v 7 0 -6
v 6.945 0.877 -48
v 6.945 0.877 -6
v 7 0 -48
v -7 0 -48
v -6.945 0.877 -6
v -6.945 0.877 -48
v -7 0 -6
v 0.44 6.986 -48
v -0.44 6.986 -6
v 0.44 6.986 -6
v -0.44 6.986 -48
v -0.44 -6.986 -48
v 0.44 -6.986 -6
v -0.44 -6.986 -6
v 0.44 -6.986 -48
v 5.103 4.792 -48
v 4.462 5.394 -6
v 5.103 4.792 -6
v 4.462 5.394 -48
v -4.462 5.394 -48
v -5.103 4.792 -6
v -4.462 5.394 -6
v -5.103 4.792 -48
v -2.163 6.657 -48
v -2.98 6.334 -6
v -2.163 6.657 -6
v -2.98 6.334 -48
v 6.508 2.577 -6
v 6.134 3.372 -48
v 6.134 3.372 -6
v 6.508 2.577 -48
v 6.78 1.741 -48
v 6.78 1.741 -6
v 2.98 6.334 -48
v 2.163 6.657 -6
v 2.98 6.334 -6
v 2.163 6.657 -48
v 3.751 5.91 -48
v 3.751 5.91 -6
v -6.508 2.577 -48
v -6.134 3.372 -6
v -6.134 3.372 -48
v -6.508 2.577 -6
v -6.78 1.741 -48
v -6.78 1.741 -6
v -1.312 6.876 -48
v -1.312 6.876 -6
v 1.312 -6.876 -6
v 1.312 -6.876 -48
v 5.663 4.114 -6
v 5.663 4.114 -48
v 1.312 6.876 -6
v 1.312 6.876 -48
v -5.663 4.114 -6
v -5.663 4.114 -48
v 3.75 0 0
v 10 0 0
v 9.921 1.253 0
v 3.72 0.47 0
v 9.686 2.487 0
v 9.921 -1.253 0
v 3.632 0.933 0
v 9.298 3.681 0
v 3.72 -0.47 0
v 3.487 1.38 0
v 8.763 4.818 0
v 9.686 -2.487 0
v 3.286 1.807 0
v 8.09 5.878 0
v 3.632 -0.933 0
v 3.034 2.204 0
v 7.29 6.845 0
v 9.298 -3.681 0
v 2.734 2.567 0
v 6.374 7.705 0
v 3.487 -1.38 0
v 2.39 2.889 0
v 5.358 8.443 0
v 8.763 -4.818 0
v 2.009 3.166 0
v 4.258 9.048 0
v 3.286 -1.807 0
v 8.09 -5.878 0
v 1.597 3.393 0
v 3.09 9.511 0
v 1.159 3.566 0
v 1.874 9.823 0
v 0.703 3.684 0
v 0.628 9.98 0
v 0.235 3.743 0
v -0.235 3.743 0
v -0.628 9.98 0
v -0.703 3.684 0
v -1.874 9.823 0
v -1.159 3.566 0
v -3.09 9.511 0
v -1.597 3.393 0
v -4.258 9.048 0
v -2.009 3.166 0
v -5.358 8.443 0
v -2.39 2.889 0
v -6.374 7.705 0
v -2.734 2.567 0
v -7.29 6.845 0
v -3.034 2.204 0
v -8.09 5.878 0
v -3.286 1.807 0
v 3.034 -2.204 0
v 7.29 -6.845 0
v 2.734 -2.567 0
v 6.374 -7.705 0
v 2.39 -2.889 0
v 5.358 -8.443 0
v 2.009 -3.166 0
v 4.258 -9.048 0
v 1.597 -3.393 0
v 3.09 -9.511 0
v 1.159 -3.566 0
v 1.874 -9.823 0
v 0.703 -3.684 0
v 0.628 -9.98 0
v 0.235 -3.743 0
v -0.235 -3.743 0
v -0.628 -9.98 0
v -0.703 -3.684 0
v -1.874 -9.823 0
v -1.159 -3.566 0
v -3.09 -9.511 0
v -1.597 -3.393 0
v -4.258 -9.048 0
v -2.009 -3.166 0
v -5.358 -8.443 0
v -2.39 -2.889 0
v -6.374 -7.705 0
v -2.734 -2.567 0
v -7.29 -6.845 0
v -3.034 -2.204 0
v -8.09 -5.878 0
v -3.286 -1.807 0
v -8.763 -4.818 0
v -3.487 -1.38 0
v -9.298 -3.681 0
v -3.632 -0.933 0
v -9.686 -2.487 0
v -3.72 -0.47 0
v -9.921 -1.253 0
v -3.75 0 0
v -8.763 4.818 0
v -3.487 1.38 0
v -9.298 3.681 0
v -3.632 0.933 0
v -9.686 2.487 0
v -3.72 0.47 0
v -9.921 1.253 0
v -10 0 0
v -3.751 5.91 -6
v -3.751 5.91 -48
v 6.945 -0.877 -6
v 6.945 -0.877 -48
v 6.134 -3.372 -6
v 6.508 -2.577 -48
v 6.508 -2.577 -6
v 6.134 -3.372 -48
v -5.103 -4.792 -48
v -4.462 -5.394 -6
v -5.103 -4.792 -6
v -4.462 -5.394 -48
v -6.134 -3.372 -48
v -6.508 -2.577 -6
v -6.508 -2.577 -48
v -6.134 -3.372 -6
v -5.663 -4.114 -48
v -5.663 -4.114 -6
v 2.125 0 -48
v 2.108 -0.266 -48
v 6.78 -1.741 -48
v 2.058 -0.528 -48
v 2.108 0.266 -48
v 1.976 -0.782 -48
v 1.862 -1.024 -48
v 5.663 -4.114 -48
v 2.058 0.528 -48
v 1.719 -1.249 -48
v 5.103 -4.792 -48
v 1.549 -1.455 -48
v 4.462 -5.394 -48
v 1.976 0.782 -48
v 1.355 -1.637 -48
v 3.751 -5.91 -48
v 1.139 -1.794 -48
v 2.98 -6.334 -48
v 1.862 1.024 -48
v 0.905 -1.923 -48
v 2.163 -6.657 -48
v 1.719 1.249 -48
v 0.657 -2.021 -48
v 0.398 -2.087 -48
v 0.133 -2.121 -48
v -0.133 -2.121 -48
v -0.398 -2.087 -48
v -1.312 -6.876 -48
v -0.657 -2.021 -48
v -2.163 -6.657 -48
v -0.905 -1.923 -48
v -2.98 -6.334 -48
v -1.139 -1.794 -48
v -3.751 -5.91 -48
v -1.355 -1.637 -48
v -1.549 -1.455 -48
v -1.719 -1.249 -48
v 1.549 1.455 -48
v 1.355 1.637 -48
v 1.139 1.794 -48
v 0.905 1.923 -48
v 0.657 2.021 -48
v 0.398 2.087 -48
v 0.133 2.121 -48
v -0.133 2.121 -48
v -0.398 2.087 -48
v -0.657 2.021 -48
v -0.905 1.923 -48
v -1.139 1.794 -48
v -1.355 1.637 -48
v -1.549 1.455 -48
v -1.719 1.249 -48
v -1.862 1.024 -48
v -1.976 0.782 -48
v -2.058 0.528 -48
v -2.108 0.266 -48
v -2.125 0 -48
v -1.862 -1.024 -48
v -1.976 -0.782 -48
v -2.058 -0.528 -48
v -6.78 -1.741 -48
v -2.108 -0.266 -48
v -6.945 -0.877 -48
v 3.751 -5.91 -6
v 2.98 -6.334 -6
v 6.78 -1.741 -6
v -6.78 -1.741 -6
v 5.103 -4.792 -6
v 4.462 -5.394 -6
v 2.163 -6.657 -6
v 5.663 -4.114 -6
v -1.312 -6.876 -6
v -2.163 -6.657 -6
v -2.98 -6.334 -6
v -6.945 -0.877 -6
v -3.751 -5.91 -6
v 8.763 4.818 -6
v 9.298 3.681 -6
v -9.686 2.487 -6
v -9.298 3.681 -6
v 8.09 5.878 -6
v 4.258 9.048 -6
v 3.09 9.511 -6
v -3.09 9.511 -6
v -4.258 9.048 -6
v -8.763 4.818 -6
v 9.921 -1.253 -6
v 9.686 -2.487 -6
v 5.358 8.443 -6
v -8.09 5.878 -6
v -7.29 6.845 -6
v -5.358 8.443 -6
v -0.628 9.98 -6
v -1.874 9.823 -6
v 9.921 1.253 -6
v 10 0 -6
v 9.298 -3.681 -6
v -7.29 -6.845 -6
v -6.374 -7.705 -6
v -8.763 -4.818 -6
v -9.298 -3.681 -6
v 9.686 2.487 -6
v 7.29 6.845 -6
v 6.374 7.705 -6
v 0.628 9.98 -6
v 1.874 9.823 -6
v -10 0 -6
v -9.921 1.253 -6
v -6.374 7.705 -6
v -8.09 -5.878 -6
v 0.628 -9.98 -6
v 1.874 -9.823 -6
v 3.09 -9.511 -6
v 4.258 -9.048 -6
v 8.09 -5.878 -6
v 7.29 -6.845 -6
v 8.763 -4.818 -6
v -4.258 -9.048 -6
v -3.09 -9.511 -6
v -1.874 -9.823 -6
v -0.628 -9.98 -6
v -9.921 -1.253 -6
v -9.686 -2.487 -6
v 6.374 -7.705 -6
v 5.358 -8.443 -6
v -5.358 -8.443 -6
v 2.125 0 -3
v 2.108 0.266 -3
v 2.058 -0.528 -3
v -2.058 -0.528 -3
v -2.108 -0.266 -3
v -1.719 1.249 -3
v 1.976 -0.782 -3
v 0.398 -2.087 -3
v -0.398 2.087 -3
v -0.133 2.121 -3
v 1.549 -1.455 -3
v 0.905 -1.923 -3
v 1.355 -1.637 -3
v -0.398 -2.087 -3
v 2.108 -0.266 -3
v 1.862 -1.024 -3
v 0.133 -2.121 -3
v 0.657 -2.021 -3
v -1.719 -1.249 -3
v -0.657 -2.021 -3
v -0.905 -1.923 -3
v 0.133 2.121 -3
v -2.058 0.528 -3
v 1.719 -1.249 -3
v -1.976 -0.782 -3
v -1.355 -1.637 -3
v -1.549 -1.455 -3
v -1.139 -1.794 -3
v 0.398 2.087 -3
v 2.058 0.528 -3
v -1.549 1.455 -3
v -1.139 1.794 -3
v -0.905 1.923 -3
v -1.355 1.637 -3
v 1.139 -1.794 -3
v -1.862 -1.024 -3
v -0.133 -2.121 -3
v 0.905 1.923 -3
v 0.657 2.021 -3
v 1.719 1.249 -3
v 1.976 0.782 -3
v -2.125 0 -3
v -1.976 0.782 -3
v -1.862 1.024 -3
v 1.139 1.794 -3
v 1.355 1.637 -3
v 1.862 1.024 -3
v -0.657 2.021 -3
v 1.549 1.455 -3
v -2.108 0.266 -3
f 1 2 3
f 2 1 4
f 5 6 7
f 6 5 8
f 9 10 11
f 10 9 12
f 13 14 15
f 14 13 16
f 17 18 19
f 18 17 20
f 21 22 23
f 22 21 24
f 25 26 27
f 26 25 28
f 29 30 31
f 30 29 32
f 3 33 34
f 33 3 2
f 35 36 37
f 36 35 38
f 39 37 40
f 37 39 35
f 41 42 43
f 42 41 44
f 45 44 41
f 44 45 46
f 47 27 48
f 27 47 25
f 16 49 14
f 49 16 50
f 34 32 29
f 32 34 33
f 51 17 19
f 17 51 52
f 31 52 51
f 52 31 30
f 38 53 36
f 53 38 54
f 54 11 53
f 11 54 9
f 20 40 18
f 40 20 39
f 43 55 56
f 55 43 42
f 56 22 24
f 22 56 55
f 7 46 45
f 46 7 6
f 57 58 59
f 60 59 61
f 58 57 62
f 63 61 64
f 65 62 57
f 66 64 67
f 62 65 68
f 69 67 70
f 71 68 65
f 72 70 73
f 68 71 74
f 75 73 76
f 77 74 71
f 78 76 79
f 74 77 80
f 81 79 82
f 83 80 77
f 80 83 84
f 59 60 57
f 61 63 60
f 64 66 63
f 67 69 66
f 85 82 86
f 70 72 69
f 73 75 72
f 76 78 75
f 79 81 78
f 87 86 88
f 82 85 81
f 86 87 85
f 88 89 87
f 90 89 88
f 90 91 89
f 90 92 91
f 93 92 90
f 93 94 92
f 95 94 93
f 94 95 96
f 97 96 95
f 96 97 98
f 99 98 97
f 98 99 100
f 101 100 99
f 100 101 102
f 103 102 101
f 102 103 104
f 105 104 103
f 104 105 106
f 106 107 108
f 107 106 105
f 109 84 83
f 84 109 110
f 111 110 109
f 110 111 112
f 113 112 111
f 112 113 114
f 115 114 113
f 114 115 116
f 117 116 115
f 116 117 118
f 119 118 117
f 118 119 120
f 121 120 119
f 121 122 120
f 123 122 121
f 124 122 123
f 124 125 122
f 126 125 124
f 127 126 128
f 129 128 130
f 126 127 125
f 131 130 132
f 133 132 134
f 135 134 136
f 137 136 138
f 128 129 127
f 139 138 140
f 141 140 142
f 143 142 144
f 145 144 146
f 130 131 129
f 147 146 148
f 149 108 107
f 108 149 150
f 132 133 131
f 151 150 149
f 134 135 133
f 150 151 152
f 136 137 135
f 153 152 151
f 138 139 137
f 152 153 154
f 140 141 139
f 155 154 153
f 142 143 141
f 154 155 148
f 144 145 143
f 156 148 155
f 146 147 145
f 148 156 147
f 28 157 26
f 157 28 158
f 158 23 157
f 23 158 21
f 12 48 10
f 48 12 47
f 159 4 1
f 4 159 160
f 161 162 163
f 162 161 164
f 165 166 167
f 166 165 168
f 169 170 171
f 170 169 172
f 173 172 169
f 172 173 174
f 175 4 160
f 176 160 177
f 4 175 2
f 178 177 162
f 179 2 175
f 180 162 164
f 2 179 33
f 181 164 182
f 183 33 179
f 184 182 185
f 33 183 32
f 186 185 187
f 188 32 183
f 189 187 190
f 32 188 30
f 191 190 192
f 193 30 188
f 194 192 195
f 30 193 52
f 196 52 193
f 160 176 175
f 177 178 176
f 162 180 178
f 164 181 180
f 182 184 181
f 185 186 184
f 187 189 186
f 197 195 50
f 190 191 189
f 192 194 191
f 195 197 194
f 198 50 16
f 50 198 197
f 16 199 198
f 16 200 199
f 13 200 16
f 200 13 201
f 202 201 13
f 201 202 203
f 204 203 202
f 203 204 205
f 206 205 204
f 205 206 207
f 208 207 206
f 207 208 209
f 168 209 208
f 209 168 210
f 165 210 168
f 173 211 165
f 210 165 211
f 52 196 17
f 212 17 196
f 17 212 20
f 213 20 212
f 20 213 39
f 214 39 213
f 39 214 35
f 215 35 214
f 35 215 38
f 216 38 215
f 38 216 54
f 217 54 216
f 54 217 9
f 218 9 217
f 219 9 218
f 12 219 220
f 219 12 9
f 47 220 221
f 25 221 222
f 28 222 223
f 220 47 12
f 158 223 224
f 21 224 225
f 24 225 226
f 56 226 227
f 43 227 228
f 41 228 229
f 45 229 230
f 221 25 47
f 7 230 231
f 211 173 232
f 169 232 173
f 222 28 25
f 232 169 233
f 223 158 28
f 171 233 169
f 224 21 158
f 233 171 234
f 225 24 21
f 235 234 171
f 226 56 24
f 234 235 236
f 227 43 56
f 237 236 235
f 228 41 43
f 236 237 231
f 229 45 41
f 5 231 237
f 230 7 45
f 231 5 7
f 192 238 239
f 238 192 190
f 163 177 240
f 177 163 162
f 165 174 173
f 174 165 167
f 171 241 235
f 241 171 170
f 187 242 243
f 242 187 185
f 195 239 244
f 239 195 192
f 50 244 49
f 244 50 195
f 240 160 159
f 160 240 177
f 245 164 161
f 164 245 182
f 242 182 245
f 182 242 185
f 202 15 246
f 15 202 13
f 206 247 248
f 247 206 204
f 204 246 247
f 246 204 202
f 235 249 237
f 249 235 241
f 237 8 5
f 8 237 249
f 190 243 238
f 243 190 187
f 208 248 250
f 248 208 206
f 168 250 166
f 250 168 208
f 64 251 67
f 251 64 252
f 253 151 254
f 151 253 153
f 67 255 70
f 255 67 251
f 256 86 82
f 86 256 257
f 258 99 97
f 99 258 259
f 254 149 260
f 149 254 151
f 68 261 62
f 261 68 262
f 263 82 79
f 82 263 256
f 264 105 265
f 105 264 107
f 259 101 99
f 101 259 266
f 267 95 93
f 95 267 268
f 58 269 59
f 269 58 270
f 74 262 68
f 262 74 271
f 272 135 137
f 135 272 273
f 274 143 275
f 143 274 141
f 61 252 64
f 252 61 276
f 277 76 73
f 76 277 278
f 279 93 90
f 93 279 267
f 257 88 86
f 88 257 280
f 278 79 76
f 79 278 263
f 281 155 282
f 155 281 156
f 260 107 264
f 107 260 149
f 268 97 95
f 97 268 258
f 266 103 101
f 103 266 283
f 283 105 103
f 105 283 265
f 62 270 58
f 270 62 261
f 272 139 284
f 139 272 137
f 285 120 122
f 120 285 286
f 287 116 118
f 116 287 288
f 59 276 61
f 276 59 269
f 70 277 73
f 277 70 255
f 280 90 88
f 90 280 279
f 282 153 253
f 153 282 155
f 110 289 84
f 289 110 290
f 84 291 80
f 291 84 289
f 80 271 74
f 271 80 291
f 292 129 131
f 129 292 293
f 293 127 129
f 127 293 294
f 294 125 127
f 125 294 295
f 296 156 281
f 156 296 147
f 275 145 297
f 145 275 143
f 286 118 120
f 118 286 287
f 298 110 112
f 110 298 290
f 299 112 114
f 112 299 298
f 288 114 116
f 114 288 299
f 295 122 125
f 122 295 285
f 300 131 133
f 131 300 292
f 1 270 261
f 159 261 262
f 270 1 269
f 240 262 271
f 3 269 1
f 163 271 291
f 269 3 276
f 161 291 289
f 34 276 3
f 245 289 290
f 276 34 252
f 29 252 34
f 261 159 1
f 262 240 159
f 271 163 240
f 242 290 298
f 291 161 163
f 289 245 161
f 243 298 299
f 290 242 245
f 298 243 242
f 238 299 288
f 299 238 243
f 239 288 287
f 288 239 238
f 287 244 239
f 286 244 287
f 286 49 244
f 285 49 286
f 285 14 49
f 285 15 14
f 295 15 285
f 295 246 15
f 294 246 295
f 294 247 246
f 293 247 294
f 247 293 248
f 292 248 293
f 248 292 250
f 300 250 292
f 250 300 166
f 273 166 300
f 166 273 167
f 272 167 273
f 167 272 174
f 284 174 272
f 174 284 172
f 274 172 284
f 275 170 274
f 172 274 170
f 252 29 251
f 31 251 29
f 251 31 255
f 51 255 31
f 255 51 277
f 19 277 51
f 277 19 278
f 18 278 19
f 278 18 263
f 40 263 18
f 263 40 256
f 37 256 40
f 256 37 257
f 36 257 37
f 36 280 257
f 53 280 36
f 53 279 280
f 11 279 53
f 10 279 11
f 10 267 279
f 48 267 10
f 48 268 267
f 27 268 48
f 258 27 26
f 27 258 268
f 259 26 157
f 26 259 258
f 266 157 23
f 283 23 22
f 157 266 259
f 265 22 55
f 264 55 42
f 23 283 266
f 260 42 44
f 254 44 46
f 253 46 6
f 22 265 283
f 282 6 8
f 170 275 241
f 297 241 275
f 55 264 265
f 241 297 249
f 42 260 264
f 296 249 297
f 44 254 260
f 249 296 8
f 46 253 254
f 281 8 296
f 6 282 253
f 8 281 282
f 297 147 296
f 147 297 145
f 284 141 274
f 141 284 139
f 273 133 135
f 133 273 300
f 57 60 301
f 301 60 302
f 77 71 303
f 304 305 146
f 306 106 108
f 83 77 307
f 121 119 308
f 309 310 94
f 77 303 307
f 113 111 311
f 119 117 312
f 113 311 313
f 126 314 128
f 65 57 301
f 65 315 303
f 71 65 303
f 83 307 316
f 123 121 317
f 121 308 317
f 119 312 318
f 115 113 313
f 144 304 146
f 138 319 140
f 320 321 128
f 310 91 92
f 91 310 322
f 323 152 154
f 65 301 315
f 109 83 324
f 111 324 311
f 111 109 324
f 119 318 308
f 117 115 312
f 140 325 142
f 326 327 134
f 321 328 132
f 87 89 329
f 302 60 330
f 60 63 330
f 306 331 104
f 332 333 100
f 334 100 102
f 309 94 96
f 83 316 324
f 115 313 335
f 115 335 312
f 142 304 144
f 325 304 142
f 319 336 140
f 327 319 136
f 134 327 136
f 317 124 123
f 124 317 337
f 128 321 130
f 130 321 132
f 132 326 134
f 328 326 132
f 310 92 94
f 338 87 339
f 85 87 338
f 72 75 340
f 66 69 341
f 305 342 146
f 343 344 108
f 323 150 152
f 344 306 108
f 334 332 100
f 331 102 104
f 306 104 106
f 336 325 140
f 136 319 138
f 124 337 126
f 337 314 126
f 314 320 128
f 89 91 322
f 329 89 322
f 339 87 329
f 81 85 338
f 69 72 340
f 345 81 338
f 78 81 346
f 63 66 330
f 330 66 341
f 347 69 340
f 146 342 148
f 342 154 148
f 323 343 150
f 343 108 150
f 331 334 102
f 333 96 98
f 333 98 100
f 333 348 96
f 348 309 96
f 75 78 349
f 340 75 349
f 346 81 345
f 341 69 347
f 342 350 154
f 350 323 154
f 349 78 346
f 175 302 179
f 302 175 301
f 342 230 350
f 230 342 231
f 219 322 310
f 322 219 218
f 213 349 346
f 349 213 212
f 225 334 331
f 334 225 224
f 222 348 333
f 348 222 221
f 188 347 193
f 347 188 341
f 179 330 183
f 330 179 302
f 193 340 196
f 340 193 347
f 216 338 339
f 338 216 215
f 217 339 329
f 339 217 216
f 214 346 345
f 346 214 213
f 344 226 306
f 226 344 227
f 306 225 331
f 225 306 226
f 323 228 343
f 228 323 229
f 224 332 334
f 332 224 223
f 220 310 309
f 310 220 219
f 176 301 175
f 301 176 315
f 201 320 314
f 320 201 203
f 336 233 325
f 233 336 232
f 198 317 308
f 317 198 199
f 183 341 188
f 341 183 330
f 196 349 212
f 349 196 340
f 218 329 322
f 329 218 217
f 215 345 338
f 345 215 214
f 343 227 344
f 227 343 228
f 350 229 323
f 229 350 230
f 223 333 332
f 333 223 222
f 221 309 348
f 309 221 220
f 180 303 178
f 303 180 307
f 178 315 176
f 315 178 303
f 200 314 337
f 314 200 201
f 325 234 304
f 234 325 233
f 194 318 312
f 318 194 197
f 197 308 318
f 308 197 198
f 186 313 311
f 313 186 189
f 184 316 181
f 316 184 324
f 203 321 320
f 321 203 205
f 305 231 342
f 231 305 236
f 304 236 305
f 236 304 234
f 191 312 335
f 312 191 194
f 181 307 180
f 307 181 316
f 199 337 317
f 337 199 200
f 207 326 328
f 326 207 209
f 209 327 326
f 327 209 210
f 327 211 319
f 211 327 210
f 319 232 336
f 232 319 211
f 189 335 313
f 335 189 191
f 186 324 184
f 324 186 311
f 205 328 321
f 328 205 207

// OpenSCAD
$fn = 50;


difference() {
	union() {
		translate(v = [0, 0, -48.0000000000]) {
			cylinder(h = 48, r = 7.0000000000);
		}
		translate(v = [0, 0, -6.0000000000]) {
			cylinder(h = 6, r = 10.0000000000);
		}
	}
	union() {
		translate(v = [0, 0, 0]) {
			rotate(a = [0, 0, 0]) {
				difference() {
					union() {
						#translate(v = [0, 0, -48.0000000000]) {
							cylinder(h = 48, r = 2.0000000000);
						}
						#translate(v = [0, 0, -3]) {
							cylinder(h = 3, r = 7.0000000000, r1 = 2.1250000000, r2 = 3.7500000000);
						}
						#translate(v = [0, 0, -48.0000000000]) {
							cylinder(h = 48, r = 2.1250000000);
						}
						#translate(v = [0, 0, -48.0000000000]) {
							cylinder(h = 48, r = 2.0000000000);
						}
					}
					union();
				}
			}
		}
	}
}
